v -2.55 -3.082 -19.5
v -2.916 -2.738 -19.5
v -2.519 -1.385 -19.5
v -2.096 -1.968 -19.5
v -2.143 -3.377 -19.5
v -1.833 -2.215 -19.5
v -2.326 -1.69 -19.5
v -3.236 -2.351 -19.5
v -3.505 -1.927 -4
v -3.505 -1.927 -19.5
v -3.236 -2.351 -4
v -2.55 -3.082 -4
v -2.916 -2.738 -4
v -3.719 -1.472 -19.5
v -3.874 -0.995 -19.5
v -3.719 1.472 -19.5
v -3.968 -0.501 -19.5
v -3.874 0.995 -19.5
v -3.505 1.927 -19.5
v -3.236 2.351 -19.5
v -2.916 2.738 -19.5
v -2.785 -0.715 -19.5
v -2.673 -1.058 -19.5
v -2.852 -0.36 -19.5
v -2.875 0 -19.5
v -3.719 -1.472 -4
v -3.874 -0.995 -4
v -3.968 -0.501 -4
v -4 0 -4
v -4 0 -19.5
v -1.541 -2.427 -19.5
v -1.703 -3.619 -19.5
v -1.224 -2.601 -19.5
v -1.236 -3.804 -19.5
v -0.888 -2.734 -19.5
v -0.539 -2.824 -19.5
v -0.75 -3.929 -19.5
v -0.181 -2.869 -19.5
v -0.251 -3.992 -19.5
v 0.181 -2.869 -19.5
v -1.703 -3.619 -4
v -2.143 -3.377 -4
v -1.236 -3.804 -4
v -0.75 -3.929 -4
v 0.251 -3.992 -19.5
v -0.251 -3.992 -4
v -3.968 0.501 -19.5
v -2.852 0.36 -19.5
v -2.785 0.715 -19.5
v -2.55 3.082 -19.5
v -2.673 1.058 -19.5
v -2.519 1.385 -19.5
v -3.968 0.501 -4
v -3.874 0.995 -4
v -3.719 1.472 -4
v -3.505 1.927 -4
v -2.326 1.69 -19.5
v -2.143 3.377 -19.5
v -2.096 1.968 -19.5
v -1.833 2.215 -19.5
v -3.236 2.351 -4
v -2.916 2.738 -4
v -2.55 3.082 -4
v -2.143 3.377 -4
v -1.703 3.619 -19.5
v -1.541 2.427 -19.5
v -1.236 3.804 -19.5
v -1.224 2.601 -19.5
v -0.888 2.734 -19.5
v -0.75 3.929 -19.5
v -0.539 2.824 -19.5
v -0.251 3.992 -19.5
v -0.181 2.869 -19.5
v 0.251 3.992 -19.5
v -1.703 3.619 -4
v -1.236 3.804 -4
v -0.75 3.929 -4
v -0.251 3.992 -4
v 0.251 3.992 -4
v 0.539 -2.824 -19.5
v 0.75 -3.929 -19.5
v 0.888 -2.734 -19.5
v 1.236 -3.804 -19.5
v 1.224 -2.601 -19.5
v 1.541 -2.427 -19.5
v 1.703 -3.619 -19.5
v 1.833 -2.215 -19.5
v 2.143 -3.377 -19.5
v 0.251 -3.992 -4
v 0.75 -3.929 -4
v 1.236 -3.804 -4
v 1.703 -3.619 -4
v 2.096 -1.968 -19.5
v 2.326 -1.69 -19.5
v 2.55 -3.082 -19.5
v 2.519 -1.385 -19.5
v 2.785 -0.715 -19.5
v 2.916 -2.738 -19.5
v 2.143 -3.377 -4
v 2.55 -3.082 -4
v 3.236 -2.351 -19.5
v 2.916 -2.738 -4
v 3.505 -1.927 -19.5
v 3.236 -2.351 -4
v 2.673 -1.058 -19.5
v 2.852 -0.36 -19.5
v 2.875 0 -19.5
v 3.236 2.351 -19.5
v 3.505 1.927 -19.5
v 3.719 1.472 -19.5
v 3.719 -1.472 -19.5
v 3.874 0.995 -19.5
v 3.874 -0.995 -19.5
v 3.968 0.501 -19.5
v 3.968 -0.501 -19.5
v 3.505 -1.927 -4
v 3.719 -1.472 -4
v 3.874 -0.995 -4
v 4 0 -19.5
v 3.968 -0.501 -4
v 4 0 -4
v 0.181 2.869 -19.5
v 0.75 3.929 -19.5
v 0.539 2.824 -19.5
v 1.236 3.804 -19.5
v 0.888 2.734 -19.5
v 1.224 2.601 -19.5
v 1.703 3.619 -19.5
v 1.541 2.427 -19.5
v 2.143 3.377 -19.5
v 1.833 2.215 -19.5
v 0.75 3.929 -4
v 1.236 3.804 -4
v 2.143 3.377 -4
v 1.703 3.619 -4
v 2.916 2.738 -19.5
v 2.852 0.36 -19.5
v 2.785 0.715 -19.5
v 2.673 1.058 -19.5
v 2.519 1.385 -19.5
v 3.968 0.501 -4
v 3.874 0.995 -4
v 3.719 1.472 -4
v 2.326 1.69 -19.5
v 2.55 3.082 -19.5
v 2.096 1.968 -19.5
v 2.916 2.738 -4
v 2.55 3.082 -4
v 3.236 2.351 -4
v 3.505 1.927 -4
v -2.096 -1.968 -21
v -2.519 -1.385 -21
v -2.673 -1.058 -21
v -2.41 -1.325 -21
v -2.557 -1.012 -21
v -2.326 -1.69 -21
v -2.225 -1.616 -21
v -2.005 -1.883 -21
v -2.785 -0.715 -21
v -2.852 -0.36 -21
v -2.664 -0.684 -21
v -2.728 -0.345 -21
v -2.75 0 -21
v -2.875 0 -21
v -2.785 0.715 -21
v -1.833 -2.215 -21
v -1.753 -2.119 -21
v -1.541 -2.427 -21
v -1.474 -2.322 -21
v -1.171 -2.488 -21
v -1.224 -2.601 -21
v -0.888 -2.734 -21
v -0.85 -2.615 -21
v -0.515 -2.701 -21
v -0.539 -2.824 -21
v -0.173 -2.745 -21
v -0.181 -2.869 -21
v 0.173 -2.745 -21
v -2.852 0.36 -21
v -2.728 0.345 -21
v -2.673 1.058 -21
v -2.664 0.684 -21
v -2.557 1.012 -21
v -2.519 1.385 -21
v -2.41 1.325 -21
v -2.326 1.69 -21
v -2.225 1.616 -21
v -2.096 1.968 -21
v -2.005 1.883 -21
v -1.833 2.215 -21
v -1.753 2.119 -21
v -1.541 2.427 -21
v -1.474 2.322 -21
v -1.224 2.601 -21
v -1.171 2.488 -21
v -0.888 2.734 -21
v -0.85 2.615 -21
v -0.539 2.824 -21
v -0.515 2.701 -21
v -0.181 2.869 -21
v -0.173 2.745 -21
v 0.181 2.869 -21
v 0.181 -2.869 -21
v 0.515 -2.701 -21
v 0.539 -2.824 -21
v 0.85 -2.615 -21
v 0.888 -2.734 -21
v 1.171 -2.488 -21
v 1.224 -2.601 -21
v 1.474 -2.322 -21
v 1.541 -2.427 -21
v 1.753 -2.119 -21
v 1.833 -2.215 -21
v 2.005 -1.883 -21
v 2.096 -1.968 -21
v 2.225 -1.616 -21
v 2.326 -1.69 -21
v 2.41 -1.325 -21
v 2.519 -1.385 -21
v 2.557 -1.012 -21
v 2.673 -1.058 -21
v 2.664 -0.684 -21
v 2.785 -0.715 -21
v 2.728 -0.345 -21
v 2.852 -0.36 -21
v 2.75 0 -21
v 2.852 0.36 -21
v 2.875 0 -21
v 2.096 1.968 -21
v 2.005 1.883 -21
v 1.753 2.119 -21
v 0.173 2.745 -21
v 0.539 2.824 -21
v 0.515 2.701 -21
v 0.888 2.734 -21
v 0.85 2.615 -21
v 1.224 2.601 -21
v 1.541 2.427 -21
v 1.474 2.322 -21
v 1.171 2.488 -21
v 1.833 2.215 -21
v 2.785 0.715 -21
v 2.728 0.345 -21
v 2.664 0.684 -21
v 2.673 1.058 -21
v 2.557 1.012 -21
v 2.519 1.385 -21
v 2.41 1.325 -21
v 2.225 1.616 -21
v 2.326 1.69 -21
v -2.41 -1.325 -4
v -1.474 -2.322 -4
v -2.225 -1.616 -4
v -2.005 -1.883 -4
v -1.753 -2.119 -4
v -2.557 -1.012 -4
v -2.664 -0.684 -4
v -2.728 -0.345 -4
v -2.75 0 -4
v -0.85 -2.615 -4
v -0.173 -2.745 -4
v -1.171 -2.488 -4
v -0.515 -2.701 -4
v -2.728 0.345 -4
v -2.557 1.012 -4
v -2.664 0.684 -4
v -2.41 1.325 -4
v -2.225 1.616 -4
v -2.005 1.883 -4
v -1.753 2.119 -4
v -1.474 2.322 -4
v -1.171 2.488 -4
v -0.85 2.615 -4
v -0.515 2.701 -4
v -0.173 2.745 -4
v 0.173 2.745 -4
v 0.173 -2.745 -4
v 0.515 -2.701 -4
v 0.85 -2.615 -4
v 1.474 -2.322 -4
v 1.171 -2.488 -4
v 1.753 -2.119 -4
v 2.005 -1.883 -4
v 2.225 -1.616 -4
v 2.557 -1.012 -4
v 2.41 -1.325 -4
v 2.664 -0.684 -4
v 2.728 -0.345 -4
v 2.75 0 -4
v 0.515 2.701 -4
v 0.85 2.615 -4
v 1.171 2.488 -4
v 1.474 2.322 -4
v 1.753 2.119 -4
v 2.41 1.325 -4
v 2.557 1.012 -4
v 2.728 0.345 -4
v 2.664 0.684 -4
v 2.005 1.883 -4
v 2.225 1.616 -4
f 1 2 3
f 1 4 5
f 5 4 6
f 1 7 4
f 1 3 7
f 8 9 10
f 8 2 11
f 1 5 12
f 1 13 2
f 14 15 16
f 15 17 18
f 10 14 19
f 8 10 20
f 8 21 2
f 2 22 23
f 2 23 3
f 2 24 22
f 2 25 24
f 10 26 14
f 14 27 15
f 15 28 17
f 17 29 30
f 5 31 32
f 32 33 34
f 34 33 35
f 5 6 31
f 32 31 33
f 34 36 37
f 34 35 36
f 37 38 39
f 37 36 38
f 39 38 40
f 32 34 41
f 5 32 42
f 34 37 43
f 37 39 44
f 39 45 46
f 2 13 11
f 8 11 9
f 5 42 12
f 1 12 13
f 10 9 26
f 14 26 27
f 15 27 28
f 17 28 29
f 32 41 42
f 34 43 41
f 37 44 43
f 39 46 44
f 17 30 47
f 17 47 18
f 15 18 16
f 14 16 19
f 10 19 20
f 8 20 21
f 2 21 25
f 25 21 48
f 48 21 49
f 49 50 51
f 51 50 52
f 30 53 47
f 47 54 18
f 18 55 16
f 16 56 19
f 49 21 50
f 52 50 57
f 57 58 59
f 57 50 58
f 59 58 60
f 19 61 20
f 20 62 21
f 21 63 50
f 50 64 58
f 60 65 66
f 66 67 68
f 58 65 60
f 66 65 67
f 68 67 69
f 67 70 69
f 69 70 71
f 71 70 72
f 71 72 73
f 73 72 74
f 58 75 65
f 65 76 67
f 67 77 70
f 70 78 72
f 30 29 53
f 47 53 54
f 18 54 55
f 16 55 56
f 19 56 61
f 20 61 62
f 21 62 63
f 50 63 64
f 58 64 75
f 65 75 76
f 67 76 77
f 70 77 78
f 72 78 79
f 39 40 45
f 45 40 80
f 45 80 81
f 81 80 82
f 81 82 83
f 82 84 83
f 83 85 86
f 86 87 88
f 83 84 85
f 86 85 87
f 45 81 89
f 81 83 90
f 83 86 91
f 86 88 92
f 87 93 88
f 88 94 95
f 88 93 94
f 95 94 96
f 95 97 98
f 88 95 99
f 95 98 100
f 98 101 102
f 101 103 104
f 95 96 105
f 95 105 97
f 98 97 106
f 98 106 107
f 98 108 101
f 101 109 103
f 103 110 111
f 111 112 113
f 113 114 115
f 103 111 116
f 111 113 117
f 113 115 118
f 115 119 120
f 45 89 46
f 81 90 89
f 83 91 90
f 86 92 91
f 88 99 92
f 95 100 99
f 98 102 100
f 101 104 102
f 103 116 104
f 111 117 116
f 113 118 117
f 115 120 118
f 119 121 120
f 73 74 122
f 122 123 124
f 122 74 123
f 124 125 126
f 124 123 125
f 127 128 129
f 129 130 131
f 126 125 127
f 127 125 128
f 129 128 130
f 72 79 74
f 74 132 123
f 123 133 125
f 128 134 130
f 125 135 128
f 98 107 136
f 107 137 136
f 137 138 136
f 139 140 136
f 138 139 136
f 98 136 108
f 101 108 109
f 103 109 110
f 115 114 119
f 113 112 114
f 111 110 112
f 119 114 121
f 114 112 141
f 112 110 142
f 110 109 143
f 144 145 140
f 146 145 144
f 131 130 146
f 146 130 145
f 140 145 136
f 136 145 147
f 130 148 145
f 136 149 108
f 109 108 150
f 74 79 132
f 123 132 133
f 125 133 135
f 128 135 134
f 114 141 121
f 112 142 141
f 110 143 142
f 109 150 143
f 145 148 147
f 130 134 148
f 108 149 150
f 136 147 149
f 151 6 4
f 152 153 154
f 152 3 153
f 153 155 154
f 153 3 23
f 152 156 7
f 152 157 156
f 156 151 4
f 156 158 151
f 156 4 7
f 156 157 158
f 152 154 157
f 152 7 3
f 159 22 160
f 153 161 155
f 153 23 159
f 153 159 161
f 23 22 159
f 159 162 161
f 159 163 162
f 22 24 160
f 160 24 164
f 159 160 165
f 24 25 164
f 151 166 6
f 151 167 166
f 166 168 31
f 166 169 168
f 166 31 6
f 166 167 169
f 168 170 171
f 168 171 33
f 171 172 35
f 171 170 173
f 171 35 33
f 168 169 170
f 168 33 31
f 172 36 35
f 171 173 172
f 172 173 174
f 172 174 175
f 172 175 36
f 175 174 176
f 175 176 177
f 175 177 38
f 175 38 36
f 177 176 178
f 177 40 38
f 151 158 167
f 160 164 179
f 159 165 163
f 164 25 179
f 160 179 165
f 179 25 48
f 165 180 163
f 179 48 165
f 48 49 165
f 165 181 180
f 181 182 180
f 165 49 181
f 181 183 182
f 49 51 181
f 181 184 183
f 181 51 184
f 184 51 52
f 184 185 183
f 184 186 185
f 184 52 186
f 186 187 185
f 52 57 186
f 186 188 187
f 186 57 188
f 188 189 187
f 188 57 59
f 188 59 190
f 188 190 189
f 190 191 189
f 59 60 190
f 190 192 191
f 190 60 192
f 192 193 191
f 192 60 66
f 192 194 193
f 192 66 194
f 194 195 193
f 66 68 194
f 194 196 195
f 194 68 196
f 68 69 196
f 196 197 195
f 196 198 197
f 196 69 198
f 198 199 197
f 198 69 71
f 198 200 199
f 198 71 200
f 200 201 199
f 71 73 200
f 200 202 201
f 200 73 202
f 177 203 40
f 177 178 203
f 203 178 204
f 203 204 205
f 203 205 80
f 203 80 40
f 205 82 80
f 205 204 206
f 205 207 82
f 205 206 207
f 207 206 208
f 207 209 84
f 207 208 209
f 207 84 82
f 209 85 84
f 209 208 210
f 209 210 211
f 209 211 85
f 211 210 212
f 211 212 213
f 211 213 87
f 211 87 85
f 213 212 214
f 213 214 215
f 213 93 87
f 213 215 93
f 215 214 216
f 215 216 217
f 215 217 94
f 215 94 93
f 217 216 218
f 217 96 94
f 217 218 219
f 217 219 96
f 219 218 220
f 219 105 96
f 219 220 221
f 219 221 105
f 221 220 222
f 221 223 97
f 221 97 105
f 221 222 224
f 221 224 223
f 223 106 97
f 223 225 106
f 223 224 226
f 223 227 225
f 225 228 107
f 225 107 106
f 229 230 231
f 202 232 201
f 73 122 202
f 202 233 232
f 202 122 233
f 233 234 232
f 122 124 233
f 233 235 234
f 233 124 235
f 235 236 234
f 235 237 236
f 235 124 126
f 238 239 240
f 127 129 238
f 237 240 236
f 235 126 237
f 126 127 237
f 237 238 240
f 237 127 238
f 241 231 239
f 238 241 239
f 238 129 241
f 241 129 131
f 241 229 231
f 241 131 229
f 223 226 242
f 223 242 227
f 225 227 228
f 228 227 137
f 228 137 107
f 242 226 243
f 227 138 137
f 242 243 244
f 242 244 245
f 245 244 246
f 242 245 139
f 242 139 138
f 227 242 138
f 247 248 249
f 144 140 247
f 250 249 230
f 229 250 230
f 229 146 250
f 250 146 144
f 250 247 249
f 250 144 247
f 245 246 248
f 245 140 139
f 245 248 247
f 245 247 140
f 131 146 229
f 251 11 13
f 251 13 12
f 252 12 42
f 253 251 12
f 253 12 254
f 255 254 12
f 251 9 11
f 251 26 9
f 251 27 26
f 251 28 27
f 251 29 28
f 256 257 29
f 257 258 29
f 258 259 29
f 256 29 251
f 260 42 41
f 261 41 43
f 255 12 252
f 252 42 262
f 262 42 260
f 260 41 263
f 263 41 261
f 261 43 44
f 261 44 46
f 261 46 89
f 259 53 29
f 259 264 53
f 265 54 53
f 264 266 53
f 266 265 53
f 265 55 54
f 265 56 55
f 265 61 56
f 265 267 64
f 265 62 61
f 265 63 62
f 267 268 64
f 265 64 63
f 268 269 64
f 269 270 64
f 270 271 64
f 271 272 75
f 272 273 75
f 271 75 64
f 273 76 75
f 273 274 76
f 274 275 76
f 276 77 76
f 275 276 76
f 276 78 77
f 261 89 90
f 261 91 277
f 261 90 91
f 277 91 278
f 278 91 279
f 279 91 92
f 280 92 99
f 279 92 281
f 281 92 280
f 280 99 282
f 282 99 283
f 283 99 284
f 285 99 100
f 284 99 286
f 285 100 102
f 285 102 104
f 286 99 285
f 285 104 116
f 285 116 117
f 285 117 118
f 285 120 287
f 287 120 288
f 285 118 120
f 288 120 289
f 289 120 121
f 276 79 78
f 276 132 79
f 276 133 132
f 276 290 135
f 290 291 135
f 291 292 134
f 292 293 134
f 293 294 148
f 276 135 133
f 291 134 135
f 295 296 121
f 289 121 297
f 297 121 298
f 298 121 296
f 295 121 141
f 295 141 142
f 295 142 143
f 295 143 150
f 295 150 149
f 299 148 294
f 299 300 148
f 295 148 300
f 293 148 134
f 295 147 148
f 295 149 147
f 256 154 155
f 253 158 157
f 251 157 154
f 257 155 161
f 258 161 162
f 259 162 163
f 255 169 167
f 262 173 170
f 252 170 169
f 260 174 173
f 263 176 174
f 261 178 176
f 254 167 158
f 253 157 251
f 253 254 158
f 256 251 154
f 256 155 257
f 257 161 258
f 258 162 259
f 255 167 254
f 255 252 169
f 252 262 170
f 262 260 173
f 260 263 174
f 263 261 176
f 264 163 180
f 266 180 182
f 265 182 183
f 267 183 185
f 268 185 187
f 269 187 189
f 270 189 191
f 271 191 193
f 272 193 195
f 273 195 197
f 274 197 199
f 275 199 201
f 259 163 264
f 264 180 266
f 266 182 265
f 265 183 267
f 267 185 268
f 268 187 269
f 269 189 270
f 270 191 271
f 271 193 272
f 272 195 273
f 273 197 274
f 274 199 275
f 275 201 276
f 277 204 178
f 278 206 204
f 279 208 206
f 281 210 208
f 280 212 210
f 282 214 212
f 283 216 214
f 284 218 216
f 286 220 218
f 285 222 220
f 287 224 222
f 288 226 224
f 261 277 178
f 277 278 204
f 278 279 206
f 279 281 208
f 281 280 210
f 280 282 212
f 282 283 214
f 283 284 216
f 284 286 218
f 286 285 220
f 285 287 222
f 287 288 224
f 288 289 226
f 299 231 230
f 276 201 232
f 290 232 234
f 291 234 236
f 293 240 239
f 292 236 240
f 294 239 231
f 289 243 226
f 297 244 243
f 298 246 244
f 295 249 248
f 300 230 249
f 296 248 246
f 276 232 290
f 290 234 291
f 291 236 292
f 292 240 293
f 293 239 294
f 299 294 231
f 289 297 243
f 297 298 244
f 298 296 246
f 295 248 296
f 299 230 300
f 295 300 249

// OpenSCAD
$fn = 50;

difference() {
	union() {
		translate(v = [0, 0, -19.5]) {
			cylinder(h = 19.5, r = 4.0);
		}
		#translate(v = [0, 0, -21.0]) {
			cylinder(h = 21, r = 2.875);
		}
	}
	union() {
		translate(v = [0, 0, 0]) {
			rotate(a = [0, 0, 0]) {
				difference() {
					union() {
						translate(v = [0, 0, -4]) {
							linear_extrude(height = 4) {
								polygon(points = [[4.8468, 0.0], [2.4234000000000004, 4.197451927062417], [-2.423399999999999, 4.197451927062417], [-4.8468, 5.935618106107392e-16], [-2.423400000000002, -4.197451927062416], [2.423399999999997, -4.197451927062419]]);
							}
						}
					}
					union();
				}
			}
		}
		#translate(v = [0, 0, -100.0]) {
			cylinder(h = 200, r = 2.75);
		}
	}
}
